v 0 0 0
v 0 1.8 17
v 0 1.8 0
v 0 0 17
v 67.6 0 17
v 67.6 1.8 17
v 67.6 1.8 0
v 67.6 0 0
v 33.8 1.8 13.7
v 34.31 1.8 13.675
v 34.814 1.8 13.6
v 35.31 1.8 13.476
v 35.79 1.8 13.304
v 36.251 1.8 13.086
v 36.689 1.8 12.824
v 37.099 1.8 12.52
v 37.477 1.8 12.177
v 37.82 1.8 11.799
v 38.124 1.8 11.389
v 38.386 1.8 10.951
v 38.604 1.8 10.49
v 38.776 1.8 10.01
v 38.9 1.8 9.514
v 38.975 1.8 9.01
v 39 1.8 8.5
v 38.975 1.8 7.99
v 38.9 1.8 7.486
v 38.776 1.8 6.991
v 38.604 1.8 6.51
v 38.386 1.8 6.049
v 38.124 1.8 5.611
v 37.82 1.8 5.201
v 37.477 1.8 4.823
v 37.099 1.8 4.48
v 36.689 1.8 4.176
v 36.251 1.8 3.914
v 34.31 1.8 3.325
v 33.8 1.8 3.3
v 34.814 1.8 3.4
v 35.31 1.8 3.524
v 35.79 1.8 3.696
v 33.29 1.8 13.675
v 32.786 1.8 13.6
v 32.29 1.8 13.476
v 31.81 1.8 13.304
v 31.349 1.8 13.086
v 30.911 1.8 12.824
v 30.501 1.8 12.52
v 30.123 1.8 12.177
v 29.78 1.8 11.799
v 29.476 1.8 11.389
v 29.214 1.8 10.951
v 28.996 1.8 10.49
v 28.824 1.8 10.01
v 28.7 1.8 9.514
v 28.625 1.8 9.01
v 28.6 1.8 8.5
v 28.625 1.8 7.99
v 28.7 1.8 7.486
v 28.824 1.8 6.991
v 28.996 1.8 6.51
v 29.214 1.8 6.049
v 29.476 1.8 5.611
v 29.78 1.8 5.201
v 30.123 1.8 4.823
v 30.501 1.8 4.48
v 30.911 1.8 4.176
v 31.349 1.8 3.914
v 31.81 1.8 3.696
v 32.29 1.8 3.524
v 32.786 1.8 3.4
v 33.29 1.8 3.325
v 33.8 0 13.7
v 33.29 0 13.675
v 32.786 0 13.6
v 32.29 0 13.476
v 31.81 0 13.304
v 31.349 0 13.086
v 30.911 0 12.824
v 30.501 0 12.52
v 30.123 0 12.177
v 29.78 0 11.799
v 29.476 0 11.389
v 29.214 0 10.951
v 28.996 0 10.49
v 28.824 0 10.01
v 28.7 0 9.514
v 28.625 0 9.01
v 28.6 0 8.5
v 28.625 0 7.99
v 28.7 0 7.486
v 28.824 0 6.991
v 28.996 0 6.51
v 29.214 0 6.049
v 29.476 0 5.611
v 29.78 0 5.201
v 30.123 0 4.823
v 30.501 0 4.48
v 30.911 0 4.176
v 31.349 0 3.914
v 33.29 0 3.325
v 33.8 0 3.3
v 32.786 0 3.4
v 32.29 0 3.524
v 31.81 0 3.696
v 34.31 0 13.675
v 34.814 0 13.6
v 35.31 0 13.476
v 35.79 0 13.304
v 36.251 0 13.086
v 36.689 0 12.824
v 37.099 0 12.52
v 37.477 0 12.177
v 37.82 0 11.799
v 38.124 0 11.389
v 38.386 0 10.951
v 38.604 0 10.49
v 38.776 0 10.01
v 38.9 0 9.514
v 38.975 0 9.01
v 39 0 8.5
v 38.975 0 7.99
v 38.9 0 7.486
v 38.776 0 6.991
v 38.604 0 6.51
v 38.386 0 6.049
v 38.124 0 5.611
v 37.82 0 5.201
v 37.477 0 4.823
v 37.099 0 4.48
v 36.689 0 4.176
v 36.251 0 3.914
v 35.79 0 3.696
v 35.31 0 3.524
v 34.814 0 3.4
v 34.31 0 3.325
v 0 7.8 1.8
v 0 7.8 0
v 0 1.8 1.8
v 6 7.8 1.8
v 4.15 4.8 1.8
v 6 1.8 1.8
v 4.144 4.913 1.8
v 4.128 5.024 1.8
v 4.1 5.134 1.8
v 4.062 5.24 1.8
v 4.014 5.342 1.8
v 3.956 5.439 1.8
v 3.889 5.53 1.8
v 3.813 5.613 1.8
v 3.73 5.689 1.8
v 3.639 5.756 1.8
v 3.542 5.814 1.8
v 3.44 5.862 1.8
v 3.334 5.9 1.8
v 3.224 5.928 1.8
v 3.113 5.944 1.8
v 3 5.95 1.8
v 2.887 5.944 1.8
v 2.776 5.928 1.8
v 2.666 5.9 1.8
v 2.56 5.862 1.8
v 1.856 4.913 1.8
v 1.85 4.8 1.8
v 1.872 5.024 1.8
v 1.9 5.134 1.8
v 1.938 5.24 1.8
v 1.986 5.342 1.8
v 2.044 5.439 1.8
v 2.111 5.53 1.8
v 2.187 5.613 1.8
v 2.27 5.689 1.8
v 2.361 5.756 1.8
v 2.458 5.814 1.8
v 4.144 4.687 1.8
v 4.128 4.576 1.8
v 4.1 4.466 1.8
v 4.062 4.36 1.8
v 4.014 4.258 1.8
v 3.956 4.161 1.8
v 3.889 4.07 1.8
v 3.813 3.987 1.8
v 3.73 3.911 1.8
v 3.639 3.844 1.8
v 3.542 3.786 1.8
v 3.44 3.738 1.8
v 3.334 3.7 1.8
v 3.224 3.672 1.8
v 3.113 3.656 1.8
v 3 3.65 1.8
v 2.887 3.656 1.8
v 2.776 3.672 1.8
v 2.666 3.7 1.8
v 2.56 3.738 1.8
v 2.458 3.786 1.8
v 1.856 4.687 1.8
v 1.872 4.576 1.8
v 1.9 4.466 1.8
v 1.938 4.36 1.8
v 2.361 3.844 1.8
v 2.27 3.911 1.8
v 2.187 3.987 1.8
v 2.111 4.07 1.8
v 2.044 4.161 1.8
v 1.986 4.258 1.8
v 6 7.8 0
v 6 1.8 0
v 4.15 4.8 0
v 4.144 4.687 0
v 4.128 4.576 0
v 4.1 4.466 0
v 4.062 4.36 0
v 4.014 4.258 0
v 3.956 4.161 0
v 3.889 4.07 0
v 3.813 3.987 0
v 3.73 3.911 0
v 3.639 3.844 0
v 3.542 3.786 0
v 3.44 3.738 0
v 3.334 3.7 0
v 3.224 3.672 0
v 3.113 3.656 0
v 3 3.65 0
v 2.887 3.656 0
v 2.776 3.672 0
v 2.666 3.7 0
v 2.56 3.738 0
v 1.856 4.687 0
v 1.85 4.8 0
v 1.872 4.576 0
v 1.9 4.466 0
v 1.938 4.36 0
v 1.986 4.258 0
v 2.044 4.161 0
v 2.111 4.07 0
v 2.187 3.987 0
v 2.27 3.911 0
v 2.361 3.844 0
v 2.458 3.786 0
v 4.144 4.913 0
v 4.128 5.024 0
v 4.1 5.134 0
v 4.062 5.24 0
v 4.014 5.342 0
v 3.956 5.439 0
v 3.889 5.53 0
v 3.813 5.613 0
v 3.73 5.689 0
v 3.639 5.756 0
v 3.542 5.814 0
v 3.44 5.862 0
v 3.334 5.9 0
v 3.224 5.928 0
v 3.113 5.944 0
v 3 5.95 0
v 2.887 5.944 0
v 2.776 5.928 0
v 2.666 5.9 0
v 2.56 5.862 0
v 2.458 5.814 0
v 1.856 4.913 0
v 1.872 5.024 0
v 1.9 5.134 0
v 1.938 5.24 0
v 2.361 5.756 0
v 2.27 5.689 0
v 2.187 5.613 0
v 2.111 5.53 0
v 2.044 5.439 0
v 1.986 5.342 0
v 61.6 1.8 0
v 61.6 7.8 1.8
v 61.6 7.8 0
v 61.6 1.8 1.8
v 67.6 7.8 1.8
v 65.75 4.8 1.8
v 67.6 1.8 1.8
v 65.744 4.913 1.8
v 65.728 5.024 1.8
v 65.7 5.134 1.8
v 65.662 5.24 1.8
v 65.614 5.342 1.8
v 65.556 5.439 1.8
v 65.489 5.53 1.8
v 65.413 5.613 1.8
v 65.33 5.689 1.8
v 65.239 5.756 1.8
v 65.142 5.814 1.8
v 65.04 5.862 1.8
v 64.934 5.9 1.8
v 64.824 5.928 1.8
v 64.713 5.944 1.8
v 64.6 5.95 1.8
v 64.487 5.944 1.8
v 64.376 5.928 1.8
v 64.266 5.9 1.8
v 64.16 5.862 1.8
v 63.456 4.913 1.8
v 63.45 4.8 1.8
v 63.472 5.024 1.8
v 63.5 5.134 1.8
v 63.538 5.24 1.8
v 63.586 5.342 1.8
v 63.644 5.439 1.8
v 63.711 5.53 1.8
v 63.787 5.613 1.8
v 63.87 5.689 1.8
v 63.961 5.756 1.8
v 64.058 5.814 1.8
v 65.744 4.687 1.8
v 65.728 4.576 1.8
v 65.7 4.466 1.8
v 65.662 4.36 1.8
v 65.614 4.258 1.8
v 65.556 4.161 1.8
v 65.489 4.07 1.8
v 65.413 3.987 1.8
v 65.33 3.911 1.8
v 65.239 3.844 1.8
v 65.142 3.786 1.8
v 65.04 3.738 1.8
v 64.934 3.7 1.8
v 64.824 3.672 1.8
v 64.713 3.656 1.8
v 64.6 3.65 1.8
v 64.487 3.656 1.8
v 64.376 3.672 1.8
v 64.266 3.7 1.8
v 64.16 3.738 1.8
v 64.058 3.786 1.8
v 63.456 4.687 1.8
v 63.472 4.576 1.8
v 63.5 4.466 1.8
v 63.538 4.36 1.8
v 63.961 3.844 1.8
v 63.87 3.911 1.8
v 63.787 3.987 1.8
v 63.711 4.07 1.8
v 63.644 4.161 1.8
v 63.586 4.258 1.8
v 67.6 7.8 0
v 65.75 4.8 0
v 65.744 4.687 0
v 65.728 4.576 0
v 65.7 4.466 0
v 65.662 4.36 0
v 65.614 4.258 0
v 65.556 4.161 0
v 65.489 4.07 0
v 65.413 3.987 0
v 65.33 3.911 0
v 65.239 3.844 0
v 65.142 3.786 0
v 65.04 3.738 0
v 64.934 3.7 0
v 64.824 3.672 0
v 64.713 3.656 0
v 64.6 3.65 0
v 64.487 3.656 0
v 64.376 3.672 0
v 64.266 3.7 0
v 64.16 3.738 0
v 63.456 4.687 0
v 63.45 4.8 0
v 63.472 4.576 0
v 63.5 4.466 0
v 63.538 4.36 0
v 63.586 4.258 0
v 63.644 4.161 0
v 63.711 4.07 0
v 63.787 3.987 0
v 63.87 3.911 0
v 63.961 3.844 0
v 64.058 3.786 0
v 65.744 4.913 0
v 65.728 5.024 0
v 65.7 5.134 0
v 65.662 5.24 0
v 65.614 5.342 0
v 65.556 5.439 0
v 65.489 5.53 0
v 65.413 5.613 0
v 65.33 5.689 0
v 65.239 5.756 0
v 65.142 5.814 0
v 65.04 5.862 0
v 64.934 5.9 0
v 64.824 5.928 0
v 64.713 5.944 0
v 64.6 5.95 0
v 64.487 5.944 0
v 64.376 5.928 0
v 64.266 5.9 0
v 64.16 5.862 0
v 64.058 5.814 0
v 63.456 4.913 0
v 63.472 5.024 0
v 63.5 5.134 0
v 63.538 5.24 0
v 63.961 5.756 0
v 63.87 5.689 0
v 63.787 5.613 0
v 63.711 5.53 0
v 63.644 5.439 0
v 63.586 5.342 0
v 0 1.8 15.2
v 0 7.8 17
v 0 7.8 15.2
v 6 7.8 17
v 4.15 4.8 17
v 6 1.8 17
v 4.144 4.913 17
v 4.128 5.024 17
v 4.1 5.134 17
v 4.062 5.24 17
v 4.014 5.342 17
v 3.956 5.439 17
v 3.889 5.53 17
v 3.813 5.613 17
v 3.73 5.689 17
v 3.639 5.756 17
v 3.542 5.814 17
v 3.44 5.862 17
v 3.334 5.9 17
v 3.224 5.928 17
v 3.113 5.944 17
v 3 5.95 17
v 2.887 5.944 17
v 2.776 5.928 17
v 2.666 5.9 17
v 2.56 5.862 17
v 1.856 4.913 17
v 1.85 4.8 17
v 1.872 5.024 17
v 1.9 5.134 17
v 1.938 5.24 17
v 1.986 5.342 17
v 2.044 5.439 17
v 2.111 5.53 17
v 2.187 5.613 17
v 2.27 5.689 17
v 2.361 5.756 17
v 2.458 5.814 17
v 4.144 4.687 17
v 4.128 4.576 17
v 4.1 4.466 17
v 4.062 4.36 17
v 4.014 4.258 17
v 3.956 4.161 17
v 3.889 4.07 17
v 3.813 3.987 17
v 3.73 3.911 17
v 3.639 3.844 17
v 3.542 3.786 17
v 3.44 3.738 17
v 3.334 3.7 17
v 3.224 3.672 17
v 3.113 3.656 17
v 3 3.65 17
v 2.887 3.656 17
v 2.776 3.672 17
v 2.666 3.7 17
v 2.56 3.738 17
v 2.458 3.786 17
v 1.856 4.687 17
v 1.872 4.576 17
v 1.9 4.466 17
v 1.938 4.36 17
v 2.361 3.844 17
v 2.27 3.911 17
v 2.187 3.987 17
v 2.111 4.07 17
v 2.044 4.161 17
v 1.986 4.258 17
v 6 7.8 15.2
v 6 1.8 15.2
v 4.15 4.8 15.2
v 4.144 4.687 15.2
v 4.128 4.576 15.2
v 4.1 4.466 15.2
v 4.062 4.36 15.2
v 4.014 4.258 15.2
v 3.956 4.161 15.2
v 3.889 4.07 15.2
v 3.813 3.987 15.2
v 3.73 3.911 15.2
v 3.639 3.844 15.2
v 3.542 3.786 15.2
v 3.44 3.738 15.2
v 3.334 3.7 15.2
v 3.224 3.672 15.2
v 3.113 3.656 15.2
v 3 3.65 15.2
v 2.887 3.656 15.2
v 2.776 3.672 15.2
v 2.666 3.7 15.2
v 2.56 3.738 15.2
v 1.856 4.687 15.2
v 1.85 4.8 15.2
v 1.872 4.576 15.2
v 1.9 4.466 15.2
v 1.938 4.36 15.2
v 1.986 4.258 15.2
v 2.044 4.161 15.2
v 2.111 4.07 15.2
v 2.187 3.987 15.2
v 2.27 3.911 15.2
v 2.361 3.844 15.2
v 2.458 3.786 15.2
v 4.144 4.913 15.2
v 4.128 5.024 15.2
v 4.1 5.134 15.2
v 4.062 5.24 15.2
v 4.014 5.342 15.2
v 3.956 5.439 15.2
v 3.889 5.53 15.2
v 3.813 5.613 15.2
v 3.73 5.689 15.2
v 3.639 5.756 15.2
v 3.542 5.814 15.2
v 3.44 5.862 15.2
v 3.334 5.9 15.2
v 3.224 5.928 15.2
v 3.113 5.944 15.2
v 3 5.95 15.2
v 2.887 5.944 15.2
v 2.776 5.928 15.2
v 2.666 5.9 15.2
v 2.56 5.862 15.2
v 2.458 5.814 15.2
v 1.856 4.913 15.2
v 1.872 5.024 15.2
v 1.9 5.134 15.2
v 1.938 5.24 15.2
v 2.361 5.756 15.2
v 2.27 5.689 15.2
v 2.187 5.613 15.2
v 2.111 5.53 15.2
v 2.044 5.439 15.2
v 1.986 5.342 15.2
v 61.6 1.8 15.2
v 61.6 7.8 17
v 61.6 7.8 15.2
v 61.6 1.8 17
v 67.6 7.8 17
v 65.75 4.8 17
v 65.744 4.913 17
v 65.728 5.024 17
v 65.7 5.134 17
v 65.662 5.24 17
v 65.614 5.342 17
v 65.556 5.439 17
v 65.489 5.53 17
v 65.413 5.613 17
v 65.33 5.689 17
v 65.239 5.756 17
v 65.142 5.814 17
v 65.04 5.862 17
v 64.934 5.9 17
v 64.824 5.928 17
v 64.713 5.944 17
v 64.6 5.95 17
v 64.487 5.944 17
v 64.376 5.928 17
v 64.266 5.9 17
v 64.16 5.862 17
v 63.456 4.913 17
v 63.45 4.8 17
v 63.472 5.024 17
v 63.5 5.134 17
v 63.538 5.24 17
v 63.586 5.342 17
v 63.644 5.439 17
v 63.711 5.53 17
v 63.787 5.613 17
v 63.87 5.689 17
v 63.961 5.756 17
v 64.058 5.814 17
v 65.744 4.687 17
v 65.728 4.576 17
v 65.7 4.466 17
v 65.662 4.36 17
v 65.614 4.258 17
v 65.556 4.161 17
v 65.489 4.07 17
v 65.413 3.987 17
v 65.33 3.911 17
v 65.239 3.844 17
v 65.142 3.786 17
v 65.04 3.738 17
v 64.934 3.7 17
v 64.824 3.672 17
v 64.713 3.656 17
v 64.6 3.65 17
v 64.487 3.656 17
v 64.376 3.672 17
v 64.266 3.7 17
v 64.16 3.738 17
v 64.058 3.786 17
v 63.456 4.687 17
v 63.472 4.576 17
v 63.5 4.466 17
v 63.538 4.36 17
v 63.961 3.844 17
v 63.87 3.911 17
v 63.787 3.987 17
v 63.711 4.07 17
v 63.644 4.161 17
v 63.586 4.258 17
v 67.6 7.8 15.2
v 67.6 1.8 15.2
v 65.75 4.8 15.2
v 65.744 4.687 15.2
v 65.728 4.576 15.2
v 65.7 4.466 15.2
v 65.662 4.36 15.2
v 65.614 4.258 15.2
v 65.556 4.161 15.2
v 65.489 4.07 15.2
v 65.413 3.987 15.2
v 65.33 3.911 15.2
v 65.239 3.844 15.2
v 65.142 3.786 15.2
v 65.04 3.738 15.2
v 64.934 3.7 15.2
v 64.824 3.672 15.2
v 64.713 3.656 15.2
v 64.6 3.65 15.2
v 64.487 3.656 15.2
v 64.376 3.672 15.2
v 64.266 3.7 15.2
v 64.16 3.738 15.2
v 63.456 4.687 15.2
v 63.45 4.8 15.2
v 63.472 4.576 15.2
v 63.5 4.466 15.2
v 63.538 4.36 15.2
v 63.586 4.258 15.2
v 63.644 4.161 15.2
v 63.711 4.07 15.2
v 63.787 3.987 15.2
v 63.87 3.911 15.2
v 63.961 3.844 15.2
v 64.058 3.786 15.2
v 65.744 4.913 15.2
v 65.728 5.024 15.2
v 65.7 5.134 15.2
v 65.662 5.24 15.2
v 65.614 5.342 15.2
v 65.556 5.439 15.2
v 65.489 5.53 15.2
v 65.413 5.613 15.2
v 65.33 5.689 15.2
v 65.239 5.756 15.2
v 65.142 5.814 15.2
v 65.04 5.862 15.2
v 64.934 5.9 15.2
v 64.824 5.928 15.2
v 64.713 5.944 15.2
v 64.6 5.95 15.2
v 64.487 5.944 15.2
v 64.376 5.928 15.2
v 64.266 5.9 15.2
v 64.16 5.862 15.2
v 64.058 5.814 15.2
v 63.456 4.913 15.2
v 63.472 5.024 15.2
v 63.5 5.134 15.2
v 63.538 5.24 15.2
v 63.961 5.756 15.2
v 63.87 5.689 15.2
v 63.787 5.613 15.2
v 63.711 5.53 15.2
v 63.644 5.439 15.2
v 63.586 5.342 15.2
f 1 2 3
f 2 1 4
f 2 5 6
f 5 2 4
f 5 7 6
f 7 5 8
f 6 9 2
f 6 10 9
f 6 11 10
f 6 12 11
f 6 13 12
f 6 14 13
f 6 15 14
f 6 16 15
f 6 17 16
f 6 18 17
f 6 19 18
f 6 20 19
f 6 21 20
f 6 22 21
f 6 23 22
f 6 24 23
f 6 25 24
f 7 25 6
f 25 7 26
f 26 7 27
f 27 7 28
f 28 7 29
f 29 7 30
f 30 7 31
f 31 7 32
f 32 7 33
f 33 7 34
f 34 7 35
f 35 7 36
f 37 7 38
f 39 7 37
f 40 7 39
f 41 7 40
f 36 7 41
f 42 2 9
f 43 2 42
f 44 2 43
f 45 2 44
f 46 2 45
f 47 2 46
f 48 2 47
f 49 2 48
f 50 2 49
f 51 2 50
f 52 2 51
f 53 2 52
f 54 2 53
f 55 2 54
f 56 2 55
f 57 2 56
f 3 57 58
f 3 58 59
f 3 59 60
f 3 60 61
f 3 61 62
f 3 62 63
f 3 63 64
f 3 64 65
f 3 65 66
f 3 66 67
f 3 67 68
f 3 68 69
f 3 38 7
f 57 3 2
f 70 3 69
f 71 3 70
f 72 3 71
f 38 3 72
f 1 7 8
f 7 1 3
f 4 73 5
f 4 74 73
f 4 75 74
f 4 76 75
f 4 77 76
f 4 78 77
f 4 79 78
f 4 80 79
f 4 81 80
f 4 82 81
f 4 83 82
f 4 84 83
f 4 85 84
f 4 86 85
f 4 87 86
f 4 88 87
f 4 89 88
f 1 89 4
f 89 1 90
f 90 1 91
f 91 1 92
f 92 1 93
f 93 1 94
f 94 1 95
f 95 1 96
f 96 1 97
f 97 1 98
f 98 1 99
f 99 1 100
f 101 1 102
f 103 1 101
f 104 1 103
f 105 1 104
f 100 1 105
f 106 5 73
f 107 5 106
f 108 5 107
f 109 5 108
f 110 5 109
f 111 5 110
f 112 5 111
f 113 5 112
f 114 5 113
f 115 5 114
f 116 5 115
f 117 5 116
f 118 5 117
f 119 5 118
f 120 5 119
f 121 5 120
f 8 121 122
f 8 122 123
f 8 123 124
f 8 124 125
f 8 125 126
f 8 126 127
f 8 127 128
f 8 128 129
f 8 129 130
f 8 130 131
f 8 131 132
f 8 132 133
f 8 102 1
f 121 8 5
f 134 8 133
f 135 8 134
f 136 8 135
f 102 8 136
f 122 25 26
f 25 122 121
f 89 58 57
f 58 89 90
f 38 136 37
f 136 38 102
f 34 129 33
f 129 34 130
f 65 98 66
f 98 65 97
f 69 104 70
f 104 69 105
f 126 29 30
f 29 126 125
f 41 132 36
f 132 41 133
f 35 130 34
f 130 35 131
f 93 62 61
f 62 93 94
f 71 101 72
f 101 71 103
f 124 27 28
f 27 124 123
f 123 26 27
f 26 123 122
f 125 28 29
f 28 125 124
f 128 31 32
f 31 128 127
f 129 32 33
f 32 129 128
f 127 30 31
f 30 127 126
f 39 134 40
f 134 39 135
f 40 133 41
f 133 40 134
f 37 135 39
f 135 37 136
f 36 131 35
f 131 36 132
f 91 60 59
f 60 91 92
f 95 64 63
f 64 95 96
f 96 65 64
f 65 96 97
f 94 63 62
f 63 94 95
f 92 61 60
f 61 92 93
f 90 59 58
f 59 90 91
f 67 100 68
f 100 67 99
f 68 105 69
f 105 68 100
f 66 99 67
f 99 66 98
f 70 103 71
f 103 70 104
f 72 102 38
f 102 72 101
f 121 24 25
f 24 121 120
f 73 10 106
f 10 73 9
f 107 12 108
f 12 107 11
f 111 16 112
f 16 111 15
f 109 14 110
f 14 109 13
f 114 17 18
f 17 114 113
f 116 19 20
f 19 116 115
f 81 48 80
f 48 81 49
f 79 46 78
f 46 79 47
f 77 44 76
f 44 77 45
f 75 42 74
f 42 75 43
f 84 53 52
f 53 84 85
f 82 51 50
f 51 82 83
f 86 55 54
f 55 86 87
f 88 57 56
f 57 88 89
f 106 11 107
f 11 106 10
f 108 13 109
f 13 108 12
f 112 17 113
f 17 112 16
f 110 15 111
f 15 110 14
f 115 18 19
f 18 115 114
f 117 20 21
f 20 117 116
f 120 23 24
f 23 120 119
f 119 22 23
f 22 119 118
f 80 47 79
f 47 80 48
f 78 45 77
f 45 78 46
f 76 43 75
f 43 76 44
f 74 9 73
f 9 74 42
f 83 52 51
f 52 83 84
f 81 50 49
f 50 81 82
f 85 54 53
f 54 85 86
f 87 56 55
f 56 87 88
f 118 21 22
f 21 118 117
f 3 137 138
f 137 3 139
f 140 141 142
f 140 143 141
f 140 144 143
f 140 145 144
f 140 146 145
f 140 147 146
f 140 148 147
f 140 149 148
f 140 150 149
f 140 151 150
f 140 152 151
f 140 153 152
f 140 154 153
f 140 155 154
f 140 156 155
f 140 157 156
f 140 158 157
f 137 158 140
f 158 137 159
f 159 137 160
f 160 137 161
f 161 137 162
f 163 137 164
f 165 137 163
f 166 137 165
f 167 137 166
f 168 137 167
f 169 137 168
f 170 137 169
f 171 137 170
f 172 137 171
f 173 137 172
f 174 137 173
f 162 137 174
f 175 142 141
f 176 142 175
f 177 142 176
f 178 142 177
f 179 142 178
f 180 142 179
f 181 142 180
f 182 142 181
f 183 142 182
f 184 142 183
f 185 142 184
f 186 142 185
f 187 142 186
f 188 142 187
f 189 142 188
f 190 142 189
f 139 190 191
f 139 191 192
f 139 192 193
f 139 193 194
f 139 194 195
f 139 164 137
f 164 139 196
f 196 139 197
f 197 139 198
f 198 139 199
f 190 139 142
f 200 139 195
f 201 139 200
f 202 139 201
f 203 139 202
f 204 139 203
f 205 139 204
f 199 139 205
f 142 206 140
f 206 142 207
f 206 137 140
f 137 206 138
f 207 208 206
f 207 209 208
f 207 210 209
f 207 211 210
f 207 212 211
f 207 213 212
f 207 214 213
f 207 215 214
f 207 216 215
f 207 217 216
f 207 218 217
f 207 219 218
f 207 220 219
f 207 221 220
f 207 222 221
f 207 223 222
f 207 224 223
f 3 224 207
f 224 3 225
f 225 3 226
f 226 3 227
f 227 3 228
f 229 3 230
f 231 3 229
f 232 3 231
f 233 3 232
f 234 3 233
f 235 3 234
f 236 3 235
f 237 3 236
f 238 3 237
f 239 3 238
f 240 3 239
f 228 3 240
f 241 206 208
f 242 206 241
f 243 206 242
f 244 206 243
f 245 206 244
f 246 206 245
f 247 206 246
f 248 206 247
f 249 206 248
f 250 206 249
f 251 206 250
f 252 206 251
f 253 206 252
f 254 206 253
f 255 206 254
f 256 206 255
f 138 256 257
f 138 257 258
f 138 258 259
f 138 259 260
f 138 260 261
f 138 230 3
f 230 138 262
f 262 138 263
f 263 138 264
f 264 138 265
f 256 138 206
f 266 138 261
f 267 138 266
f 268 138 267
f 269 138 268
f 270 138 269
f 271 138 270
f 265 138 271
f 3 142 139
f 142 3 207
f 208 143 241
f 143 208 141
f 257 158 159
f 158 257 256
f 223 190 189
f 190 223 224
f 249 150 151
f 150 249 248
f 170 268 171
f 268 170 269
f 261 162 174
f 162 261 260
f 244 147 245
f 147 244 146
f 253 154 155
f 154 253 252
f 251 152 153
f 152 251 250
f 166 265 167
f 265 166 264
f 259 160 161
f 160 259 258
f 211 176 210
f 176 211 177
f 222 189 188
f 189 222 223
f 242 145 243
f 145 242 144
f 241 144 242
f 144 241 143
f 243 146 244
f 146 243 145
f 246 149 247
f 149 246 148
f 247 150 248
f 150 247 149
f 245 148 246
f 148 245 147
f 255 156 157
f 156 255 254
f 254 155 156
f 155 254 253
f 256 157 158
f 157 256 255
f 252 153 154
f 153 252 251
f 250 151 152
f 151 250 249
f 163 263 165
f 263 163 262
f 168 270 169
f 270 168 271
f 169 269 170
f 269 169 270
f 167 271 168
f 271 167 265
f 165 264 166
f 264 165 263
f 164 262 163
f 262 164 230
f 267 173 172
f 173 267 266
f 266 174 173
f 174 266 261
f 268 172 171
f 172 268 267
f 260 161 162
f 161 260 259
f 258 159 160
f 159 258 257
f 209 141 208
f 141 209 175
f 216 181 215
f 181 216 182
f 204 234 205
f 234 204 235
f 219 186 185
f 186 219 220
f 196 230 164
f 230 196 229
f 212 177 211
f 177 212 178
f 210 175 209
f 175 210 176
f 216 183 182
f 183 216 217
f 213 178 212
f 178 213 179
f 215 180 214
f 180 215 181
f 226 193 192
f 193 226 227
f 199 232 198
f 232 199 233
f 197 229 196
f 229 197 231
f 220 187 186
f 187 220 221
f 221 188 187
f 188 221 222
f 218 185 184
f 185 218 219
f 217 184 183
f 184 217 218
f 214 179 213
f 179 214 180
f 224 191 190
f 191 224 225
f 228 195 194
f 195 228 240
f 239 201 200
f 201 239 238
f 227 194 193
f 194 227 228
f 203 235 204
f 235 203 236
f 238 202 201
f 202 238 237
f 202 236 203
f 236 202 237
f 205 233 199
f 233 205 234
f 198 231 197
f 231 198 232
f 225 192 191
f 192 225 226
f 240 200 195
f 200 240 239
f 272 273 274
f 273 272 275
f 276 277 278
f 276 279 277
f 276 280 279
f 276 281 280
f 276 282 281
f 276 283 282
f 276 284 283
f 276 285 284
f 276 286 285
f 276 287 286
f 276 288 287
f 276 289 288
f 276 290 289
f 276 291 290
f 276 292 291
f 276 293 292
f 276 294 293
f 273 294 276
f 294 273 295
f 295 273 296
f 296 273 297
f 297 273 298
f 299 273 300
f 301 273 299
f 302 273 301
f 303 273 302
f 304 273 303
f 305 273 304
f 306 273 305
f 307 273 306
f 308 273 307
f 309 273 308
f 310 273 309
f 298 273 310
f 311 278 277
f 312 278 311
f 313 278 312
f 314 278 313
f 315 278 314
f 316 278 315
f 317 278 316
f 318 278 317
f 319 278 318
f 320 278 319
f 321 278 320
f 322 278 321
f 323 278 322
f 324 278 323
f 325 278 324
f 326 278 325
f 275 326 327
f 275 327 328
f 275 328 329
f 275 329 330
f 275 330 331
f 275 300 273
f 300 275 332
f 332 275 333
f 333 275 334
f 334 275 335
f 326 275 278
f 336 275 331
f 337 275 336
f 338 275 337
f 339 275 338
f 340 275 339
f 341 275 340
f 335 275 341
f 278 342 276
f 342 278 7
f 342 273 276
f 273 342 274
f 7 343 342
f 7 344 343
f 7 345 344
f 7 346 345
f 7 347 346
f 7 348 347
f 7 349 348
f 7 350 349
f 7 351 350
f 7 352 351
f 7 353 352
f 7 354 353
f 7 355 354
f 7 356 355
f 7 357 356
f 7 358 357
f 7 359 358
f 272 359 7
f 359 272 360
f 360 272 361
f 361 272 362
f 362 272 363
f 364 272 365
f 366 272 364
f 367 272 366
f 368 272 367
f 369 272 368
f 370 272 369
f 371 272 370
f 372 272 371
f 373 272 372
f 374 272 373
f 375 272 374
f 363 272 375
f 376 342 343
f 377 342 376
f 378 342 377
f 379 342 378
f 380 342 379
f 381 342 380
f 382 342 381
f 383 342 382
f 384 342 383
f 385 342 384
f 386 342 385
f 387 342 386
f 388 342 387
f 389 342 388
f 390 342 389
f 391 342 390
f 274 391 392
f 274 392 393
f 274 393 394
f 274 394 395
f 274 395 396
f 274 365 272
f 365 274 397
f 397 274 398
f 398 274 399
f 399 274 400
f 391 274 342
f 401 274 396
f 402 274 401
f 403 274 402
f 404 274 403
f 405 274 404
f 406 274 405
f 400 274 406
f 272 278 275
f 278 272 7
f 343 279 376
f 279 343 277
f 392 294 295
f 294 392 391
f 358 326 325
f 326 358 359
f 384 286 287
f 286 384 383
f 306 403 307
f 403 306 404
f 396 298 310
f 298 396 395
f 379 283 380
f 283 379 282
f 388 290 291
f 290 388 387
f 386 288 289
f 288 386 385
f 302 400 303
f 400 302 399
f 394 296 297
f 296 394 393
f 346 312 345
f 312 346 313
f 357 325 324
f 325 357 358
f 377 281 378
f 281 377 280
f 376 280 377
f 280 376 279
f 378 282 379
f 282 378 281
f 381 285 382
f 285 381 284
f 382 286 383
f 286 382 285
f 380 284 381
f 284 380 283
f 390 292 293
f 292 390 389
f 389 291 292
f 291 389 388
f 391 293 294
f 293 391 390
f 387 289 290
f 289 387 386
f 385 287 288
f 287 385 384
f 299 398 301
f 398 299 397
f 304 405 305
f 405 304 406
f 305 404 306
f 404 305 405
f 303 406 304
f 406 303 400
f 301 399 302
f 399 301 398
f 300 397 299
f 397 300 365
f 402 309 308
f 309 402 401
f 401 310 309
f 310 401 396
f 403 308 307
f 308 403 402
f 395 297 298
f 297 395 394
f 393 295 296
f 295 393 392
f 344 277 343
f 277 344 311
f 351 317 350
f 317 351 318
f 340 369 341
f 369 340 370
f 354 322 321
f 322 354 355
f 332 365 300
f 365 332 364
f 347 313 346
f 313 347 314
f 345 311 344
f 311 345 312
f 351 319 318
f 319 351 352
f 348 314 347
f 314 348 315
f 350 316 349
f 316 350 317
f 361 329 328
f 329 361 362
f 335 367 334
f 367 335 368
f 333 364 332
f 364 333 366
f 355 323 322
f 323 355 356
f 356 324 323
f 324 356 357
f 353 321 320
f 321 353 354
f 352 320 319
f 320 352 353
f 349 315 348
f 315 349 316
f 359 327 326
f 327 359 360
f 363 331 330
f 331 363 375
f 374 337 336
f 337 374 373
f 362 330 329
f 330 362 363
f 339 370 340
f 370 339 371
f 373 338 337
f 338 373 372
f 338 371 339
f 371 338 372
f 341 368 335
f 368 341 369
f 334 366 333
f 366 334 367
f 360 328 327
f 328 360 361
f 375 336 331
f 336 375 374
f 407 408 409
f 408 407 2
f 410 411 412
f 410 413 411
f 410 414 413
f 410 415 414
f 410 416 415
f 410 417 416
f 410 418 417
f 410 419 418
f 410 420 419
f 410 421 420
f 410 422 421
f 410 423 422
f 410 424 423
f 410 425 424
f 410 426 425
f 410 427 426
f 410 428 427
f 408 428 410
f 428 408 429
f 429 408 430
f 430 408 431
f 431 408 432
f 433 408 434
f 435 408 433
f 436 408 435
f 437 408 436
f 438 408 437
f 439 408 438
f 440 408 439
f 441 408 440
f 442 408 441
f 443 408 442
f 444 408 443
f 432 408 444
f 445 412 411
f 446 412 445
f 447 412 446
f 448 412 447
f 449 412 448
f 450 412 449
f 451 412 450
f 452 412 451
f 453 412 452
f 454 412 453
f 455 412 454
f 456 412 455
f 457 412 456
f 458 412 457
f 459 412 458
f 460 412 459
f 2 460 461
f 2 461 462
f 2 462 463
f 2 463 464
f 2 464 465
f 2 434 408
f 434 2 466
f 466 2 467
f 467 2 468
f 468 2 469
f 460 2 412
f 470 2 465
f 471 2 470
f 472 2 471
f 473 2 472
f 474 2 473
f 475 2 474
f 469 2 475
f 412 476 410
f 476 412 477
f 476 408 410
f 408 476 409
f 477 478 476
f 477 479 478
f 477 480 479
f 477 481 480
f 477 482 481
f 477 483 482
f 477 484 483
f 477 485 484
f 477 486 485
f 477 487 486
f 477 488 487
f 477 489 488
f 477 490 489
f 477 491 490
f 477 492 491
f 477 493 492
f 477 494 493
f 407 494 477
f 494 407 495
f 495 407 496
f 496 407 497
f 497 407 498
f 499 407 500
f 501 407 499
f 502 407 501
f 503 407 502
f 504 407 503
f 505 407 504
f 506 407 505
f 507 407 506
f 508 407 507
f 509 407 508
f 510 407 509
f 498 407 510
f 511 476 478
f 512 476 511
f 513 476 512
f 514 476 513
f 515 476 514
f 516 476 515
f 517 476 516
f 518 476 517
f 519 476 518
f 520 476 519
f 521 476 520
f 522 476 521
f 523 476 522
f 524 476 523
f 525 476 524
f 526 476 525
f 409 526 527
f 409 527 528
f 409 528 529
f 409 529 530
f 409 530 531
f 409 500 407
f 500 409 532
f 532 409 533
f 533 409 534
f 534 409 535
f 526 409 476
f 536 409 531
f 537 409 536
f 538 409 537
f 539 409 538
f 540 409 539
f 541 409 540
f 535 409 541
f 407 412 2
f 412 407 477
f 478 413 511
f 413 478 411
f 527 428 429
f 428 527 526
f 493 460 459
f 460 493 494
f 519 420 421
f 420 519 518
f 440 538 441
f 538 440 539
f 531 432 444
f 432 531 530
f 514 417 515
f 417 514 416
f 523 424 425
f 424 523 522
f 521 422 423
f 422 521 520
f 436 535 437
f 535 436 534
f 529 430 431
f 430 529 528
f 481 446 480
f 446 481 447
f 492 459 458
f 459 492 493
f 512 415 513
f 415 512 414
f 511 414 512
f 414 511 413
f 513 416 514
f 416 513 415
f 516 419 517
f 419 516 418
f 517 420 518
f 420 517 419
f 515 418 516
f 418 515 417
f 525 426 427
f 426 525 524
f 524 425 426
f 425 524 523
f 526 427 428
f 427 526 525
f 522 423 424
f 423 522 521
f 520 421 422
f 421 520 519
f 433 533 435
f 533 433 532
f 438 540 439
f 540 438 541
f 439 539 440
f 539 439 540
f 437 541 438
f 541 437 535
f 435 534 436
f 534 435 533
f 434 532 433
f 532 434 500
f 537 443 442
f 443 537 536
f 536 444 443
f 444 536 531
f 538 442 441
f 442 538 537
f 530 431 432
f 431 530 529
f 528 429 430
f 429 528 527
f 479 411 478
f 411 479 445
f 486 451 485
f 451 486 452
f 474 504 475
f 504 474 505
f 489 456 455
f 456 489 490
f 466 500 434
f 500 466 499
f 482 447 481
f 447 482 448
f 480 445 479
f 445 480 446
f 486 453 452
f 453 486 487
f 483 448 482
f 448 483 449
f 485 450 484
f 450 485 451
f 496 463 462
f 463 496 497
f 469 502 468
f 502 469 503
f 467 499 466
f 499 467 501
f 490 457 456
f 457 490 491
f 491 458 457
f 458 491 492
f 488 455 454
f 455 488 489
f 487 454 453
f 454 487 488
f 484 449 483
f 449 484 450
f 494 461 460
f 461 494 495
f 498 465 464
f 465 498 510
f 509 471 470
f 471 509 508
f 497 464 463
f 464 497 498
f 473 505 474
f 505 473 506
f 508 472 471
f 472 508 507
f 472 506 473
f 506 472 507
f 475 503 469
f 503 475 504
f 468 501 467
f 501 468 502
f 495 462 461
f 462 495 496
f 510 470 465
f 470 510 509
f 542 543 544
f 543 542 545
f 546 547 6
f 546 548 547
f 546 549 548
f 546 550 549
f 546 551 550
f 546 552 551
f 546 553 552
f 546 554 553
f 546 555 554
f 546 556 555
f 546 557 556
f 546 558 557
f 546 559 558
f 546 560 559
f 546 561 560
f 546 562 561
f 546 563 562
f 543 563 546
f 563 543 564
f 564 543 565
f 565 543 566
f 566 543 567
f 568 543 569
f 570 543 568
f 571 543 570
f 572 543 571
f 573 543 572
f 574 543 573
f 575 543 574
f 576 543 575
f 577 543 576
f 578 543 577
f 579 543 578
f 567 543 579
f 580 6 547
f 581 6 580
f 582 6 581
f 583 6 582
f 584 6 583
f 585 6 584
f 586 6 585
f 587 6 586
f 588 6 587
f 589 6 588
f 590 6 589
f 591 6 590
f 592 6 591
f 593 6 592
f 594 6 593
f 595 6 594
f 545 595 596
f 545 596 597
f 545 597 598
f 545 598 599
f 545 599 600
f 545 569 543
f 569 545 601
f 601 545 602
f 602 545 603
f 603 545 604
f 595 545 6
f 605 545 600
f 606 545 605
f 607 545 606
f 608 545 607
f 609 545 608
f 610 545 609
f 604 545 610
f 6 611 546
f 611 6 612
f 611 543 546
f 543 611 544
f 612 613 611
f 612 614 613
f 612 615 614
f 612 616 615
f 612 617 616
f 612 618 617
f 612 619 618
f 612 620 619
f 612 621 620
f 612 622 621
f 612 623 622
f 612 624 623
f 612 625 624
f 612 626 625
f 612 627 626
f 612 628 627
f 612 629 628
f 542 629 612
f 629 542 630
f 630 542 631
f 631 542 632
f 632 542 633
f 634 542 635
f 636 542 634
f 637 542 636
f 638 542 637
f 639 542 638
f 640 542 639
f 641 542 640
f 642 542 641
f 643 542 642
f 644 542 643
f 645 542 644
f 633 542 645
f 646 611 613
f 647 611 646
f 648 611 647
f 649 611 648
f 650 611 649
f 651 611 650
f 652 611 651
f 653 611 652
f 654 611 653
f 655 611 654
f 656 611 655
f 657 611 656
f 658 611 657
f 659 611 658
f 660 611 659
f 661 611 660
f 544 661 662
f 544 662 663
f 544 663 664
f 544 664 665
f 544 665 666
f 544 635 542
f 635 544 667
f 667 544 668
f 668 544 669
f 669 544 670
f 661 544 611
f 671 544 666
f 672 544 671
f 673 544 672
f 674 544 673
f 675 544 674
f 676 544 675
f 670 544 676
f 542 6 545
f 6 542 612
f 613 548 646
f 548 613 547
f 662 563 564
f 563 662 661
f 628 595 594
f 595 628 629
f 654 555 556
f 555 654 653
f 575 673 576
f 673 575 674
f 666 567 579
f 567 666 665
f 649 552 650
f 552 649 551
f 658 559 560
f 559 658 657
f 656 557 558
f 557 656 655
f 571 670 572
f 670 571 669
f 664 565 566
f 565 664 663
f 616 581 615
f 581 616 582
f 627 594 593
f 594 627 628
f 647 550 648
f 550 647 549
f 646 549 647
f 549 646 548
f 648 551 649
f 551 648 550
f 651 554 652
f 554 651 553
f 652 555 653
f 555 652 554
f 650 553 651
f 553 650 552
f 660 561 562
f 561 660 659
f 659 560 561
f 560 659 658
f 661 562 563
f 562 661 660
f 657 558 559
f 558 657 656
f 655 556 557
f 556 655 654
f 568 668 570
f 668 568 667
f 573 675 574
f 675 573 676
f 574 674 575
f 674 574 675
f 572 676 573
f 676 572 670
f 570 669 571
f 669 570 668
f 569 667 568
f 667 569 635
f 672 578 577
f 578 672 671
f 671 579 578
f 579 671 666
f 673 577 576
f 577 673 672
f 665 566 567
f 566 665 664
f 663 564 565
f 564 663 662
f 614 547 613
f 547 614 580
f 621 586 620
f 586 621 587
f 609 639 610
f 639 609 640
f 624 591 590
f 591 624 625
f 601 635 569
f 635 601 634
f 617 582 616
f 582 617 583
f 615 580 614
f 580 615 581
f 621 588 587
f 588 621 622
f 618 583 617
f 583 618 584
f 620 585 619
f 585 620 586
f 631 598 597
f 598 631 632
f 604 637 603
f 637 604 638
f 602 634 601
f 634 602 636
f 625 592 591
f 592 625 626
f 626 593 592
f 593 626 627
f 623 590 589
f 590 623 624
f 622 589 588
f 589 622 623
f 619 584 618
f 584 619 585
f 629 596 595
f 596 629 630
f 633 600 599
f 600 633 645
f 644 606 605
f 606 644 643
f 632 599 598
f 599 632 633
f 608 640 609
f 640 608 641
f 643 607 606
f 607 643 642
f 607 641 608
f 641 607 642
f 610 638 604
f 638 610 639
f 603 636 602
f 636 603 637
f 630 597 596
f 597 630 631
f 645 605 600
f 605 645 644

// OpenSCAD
// file: variables.scad
// Radius an M3 screw hole has M3 screw fits in with a bit of extra space
screwHoleRadiusM2 = 1.15; // 2.3 mm diameter
screwHoleRadiusM3 = 1.65; // 3.3 mm diameter
screwHoleRadiusM10 = 5.2; // 10.4 mm diameter

// Dimensions of the micro switch, case only, without pins and switch latch
switchZ = 6.6; // Thickness of switch
switchX = 10.6; // Width of switch
switchY = 20.2; // Height of switch

// Dimensions of switch holder details
switchHolderBaseMaterialZ = 1.6; // Basic material thickness. This is the smallest thickness at the switch
switchHolderInsetZ = 1.2; // Inset thickness added to base thickness so switch can't fall out
switchHolderLatchX = 20; // Width of the part the filament runs through
switchHolderScrewLatchY = 6; // Height of the part that holds the screws (two of them, one above, one below switch)

// Absolute dimension vars of the whole micro switch holder, without the filament guide latches on top and bottom
switchHolderX = 2*switchHolderBaseMaterialZ + switchX + switchHolderLatchX;
switchHolderY = switchHolderScrewLatchY + switchY + switchHolderScrewLatchY;
// Full thickness is 2 parts
switchHolderZ = 2*switchHolderBaseMaterialZ + switchZ;
// Distance between the middle point of the two holder screws
switchHolderScrewDistanceX = switchY + switchHolderScrewLatchY;
// Thickness of the space the filament runs through
filamentFlowSpaceZ = switchHolderZ - 2*switchHolderBaseMaterialZ - 2*switchHolderInsetZ;

// Debug out final switch dimensions
echo(switchHolderX = switchHolderX);
echo(switchHolderY = switchHolderY);
echo(switchHolderZ = switchHolderZ);
echo(switchHolderScrewDistanceX = switchHolderScrewDistanceX);
echo(filamentFlowSpaceZ = filamentFlowSpaceZ);

// Dimensions of the filament guidance
guidanceMaterialThickness = 1.8;
guidanceX = 2*guidanceMaterialThickness + 64;
guidanceY = 96.25;
guidanceZ = switchHolderZ + 2*guidanceMaterialThickness;
guidanceScrewBaseX = 6;
guidanceScrewBaseY = 6;
// main file
include <variables.scad>;

// A base pod for holder screws
module blanketScrewHolder() {
    difference() {
        cube([
            guidanceScrewBaseX,
            guidanceScrewBaseY,
            guidanceMaterialThickness
        ]);
        translate([
            guidanceScrewBaseX/2,
            guidanceScrewBaseY/2,
            0
        ]) cylinder(
            guidanceMaterialThickness,
            r=screwHoleRadiusM2,
            $fn=64
        );
    }
}

// This holds the filament guidance. It is attached to the top of the ikea LACK
// table through the 10mm screw.
module feederLowerBlanketHolder() {
    union() {
        difference() {
            // base plate
            cube([
                guidanceX,
                guidanceMaterialThickness,
                guidanceZ + 2*guidanceMaterialThickness
            ]);
            // cut out main m10 screw hole
            translate([
                guidanceX/2,
                0,
                (guidanceZ + 2*guidanceMaterialThickness)/2
            ]) rotate([
                -90,
                0,
                0
            ]) cylinder(
                guidanceMaterialThickness,
                r=screwHoleRadiusM10,
                $fn=64
            );
        };
        // add screw pods
        translate([
            0,
            guidanceMaterialThickness,
            0
        ]) blanketScrewHolder();
        translate([
            guidanceX - guidanceScrewBaseX,
            guidanceMaterialThickness,
            0
        ]) blanketScrewHolder();
        translate([
            0,
            guidanceMaterialThickness,
            guidanceZ + guidanceMaterialThickness
        ]) blanketScrewHolder();
        translate([
            guidanceX - guidanceScrewBaseX,
            guidanceMaterialThickness,
            guidanceZ + guidanceMaterialThickness
        ]) blanketScrewHolder();
    }
}

feederLowerBlanketHolder();
